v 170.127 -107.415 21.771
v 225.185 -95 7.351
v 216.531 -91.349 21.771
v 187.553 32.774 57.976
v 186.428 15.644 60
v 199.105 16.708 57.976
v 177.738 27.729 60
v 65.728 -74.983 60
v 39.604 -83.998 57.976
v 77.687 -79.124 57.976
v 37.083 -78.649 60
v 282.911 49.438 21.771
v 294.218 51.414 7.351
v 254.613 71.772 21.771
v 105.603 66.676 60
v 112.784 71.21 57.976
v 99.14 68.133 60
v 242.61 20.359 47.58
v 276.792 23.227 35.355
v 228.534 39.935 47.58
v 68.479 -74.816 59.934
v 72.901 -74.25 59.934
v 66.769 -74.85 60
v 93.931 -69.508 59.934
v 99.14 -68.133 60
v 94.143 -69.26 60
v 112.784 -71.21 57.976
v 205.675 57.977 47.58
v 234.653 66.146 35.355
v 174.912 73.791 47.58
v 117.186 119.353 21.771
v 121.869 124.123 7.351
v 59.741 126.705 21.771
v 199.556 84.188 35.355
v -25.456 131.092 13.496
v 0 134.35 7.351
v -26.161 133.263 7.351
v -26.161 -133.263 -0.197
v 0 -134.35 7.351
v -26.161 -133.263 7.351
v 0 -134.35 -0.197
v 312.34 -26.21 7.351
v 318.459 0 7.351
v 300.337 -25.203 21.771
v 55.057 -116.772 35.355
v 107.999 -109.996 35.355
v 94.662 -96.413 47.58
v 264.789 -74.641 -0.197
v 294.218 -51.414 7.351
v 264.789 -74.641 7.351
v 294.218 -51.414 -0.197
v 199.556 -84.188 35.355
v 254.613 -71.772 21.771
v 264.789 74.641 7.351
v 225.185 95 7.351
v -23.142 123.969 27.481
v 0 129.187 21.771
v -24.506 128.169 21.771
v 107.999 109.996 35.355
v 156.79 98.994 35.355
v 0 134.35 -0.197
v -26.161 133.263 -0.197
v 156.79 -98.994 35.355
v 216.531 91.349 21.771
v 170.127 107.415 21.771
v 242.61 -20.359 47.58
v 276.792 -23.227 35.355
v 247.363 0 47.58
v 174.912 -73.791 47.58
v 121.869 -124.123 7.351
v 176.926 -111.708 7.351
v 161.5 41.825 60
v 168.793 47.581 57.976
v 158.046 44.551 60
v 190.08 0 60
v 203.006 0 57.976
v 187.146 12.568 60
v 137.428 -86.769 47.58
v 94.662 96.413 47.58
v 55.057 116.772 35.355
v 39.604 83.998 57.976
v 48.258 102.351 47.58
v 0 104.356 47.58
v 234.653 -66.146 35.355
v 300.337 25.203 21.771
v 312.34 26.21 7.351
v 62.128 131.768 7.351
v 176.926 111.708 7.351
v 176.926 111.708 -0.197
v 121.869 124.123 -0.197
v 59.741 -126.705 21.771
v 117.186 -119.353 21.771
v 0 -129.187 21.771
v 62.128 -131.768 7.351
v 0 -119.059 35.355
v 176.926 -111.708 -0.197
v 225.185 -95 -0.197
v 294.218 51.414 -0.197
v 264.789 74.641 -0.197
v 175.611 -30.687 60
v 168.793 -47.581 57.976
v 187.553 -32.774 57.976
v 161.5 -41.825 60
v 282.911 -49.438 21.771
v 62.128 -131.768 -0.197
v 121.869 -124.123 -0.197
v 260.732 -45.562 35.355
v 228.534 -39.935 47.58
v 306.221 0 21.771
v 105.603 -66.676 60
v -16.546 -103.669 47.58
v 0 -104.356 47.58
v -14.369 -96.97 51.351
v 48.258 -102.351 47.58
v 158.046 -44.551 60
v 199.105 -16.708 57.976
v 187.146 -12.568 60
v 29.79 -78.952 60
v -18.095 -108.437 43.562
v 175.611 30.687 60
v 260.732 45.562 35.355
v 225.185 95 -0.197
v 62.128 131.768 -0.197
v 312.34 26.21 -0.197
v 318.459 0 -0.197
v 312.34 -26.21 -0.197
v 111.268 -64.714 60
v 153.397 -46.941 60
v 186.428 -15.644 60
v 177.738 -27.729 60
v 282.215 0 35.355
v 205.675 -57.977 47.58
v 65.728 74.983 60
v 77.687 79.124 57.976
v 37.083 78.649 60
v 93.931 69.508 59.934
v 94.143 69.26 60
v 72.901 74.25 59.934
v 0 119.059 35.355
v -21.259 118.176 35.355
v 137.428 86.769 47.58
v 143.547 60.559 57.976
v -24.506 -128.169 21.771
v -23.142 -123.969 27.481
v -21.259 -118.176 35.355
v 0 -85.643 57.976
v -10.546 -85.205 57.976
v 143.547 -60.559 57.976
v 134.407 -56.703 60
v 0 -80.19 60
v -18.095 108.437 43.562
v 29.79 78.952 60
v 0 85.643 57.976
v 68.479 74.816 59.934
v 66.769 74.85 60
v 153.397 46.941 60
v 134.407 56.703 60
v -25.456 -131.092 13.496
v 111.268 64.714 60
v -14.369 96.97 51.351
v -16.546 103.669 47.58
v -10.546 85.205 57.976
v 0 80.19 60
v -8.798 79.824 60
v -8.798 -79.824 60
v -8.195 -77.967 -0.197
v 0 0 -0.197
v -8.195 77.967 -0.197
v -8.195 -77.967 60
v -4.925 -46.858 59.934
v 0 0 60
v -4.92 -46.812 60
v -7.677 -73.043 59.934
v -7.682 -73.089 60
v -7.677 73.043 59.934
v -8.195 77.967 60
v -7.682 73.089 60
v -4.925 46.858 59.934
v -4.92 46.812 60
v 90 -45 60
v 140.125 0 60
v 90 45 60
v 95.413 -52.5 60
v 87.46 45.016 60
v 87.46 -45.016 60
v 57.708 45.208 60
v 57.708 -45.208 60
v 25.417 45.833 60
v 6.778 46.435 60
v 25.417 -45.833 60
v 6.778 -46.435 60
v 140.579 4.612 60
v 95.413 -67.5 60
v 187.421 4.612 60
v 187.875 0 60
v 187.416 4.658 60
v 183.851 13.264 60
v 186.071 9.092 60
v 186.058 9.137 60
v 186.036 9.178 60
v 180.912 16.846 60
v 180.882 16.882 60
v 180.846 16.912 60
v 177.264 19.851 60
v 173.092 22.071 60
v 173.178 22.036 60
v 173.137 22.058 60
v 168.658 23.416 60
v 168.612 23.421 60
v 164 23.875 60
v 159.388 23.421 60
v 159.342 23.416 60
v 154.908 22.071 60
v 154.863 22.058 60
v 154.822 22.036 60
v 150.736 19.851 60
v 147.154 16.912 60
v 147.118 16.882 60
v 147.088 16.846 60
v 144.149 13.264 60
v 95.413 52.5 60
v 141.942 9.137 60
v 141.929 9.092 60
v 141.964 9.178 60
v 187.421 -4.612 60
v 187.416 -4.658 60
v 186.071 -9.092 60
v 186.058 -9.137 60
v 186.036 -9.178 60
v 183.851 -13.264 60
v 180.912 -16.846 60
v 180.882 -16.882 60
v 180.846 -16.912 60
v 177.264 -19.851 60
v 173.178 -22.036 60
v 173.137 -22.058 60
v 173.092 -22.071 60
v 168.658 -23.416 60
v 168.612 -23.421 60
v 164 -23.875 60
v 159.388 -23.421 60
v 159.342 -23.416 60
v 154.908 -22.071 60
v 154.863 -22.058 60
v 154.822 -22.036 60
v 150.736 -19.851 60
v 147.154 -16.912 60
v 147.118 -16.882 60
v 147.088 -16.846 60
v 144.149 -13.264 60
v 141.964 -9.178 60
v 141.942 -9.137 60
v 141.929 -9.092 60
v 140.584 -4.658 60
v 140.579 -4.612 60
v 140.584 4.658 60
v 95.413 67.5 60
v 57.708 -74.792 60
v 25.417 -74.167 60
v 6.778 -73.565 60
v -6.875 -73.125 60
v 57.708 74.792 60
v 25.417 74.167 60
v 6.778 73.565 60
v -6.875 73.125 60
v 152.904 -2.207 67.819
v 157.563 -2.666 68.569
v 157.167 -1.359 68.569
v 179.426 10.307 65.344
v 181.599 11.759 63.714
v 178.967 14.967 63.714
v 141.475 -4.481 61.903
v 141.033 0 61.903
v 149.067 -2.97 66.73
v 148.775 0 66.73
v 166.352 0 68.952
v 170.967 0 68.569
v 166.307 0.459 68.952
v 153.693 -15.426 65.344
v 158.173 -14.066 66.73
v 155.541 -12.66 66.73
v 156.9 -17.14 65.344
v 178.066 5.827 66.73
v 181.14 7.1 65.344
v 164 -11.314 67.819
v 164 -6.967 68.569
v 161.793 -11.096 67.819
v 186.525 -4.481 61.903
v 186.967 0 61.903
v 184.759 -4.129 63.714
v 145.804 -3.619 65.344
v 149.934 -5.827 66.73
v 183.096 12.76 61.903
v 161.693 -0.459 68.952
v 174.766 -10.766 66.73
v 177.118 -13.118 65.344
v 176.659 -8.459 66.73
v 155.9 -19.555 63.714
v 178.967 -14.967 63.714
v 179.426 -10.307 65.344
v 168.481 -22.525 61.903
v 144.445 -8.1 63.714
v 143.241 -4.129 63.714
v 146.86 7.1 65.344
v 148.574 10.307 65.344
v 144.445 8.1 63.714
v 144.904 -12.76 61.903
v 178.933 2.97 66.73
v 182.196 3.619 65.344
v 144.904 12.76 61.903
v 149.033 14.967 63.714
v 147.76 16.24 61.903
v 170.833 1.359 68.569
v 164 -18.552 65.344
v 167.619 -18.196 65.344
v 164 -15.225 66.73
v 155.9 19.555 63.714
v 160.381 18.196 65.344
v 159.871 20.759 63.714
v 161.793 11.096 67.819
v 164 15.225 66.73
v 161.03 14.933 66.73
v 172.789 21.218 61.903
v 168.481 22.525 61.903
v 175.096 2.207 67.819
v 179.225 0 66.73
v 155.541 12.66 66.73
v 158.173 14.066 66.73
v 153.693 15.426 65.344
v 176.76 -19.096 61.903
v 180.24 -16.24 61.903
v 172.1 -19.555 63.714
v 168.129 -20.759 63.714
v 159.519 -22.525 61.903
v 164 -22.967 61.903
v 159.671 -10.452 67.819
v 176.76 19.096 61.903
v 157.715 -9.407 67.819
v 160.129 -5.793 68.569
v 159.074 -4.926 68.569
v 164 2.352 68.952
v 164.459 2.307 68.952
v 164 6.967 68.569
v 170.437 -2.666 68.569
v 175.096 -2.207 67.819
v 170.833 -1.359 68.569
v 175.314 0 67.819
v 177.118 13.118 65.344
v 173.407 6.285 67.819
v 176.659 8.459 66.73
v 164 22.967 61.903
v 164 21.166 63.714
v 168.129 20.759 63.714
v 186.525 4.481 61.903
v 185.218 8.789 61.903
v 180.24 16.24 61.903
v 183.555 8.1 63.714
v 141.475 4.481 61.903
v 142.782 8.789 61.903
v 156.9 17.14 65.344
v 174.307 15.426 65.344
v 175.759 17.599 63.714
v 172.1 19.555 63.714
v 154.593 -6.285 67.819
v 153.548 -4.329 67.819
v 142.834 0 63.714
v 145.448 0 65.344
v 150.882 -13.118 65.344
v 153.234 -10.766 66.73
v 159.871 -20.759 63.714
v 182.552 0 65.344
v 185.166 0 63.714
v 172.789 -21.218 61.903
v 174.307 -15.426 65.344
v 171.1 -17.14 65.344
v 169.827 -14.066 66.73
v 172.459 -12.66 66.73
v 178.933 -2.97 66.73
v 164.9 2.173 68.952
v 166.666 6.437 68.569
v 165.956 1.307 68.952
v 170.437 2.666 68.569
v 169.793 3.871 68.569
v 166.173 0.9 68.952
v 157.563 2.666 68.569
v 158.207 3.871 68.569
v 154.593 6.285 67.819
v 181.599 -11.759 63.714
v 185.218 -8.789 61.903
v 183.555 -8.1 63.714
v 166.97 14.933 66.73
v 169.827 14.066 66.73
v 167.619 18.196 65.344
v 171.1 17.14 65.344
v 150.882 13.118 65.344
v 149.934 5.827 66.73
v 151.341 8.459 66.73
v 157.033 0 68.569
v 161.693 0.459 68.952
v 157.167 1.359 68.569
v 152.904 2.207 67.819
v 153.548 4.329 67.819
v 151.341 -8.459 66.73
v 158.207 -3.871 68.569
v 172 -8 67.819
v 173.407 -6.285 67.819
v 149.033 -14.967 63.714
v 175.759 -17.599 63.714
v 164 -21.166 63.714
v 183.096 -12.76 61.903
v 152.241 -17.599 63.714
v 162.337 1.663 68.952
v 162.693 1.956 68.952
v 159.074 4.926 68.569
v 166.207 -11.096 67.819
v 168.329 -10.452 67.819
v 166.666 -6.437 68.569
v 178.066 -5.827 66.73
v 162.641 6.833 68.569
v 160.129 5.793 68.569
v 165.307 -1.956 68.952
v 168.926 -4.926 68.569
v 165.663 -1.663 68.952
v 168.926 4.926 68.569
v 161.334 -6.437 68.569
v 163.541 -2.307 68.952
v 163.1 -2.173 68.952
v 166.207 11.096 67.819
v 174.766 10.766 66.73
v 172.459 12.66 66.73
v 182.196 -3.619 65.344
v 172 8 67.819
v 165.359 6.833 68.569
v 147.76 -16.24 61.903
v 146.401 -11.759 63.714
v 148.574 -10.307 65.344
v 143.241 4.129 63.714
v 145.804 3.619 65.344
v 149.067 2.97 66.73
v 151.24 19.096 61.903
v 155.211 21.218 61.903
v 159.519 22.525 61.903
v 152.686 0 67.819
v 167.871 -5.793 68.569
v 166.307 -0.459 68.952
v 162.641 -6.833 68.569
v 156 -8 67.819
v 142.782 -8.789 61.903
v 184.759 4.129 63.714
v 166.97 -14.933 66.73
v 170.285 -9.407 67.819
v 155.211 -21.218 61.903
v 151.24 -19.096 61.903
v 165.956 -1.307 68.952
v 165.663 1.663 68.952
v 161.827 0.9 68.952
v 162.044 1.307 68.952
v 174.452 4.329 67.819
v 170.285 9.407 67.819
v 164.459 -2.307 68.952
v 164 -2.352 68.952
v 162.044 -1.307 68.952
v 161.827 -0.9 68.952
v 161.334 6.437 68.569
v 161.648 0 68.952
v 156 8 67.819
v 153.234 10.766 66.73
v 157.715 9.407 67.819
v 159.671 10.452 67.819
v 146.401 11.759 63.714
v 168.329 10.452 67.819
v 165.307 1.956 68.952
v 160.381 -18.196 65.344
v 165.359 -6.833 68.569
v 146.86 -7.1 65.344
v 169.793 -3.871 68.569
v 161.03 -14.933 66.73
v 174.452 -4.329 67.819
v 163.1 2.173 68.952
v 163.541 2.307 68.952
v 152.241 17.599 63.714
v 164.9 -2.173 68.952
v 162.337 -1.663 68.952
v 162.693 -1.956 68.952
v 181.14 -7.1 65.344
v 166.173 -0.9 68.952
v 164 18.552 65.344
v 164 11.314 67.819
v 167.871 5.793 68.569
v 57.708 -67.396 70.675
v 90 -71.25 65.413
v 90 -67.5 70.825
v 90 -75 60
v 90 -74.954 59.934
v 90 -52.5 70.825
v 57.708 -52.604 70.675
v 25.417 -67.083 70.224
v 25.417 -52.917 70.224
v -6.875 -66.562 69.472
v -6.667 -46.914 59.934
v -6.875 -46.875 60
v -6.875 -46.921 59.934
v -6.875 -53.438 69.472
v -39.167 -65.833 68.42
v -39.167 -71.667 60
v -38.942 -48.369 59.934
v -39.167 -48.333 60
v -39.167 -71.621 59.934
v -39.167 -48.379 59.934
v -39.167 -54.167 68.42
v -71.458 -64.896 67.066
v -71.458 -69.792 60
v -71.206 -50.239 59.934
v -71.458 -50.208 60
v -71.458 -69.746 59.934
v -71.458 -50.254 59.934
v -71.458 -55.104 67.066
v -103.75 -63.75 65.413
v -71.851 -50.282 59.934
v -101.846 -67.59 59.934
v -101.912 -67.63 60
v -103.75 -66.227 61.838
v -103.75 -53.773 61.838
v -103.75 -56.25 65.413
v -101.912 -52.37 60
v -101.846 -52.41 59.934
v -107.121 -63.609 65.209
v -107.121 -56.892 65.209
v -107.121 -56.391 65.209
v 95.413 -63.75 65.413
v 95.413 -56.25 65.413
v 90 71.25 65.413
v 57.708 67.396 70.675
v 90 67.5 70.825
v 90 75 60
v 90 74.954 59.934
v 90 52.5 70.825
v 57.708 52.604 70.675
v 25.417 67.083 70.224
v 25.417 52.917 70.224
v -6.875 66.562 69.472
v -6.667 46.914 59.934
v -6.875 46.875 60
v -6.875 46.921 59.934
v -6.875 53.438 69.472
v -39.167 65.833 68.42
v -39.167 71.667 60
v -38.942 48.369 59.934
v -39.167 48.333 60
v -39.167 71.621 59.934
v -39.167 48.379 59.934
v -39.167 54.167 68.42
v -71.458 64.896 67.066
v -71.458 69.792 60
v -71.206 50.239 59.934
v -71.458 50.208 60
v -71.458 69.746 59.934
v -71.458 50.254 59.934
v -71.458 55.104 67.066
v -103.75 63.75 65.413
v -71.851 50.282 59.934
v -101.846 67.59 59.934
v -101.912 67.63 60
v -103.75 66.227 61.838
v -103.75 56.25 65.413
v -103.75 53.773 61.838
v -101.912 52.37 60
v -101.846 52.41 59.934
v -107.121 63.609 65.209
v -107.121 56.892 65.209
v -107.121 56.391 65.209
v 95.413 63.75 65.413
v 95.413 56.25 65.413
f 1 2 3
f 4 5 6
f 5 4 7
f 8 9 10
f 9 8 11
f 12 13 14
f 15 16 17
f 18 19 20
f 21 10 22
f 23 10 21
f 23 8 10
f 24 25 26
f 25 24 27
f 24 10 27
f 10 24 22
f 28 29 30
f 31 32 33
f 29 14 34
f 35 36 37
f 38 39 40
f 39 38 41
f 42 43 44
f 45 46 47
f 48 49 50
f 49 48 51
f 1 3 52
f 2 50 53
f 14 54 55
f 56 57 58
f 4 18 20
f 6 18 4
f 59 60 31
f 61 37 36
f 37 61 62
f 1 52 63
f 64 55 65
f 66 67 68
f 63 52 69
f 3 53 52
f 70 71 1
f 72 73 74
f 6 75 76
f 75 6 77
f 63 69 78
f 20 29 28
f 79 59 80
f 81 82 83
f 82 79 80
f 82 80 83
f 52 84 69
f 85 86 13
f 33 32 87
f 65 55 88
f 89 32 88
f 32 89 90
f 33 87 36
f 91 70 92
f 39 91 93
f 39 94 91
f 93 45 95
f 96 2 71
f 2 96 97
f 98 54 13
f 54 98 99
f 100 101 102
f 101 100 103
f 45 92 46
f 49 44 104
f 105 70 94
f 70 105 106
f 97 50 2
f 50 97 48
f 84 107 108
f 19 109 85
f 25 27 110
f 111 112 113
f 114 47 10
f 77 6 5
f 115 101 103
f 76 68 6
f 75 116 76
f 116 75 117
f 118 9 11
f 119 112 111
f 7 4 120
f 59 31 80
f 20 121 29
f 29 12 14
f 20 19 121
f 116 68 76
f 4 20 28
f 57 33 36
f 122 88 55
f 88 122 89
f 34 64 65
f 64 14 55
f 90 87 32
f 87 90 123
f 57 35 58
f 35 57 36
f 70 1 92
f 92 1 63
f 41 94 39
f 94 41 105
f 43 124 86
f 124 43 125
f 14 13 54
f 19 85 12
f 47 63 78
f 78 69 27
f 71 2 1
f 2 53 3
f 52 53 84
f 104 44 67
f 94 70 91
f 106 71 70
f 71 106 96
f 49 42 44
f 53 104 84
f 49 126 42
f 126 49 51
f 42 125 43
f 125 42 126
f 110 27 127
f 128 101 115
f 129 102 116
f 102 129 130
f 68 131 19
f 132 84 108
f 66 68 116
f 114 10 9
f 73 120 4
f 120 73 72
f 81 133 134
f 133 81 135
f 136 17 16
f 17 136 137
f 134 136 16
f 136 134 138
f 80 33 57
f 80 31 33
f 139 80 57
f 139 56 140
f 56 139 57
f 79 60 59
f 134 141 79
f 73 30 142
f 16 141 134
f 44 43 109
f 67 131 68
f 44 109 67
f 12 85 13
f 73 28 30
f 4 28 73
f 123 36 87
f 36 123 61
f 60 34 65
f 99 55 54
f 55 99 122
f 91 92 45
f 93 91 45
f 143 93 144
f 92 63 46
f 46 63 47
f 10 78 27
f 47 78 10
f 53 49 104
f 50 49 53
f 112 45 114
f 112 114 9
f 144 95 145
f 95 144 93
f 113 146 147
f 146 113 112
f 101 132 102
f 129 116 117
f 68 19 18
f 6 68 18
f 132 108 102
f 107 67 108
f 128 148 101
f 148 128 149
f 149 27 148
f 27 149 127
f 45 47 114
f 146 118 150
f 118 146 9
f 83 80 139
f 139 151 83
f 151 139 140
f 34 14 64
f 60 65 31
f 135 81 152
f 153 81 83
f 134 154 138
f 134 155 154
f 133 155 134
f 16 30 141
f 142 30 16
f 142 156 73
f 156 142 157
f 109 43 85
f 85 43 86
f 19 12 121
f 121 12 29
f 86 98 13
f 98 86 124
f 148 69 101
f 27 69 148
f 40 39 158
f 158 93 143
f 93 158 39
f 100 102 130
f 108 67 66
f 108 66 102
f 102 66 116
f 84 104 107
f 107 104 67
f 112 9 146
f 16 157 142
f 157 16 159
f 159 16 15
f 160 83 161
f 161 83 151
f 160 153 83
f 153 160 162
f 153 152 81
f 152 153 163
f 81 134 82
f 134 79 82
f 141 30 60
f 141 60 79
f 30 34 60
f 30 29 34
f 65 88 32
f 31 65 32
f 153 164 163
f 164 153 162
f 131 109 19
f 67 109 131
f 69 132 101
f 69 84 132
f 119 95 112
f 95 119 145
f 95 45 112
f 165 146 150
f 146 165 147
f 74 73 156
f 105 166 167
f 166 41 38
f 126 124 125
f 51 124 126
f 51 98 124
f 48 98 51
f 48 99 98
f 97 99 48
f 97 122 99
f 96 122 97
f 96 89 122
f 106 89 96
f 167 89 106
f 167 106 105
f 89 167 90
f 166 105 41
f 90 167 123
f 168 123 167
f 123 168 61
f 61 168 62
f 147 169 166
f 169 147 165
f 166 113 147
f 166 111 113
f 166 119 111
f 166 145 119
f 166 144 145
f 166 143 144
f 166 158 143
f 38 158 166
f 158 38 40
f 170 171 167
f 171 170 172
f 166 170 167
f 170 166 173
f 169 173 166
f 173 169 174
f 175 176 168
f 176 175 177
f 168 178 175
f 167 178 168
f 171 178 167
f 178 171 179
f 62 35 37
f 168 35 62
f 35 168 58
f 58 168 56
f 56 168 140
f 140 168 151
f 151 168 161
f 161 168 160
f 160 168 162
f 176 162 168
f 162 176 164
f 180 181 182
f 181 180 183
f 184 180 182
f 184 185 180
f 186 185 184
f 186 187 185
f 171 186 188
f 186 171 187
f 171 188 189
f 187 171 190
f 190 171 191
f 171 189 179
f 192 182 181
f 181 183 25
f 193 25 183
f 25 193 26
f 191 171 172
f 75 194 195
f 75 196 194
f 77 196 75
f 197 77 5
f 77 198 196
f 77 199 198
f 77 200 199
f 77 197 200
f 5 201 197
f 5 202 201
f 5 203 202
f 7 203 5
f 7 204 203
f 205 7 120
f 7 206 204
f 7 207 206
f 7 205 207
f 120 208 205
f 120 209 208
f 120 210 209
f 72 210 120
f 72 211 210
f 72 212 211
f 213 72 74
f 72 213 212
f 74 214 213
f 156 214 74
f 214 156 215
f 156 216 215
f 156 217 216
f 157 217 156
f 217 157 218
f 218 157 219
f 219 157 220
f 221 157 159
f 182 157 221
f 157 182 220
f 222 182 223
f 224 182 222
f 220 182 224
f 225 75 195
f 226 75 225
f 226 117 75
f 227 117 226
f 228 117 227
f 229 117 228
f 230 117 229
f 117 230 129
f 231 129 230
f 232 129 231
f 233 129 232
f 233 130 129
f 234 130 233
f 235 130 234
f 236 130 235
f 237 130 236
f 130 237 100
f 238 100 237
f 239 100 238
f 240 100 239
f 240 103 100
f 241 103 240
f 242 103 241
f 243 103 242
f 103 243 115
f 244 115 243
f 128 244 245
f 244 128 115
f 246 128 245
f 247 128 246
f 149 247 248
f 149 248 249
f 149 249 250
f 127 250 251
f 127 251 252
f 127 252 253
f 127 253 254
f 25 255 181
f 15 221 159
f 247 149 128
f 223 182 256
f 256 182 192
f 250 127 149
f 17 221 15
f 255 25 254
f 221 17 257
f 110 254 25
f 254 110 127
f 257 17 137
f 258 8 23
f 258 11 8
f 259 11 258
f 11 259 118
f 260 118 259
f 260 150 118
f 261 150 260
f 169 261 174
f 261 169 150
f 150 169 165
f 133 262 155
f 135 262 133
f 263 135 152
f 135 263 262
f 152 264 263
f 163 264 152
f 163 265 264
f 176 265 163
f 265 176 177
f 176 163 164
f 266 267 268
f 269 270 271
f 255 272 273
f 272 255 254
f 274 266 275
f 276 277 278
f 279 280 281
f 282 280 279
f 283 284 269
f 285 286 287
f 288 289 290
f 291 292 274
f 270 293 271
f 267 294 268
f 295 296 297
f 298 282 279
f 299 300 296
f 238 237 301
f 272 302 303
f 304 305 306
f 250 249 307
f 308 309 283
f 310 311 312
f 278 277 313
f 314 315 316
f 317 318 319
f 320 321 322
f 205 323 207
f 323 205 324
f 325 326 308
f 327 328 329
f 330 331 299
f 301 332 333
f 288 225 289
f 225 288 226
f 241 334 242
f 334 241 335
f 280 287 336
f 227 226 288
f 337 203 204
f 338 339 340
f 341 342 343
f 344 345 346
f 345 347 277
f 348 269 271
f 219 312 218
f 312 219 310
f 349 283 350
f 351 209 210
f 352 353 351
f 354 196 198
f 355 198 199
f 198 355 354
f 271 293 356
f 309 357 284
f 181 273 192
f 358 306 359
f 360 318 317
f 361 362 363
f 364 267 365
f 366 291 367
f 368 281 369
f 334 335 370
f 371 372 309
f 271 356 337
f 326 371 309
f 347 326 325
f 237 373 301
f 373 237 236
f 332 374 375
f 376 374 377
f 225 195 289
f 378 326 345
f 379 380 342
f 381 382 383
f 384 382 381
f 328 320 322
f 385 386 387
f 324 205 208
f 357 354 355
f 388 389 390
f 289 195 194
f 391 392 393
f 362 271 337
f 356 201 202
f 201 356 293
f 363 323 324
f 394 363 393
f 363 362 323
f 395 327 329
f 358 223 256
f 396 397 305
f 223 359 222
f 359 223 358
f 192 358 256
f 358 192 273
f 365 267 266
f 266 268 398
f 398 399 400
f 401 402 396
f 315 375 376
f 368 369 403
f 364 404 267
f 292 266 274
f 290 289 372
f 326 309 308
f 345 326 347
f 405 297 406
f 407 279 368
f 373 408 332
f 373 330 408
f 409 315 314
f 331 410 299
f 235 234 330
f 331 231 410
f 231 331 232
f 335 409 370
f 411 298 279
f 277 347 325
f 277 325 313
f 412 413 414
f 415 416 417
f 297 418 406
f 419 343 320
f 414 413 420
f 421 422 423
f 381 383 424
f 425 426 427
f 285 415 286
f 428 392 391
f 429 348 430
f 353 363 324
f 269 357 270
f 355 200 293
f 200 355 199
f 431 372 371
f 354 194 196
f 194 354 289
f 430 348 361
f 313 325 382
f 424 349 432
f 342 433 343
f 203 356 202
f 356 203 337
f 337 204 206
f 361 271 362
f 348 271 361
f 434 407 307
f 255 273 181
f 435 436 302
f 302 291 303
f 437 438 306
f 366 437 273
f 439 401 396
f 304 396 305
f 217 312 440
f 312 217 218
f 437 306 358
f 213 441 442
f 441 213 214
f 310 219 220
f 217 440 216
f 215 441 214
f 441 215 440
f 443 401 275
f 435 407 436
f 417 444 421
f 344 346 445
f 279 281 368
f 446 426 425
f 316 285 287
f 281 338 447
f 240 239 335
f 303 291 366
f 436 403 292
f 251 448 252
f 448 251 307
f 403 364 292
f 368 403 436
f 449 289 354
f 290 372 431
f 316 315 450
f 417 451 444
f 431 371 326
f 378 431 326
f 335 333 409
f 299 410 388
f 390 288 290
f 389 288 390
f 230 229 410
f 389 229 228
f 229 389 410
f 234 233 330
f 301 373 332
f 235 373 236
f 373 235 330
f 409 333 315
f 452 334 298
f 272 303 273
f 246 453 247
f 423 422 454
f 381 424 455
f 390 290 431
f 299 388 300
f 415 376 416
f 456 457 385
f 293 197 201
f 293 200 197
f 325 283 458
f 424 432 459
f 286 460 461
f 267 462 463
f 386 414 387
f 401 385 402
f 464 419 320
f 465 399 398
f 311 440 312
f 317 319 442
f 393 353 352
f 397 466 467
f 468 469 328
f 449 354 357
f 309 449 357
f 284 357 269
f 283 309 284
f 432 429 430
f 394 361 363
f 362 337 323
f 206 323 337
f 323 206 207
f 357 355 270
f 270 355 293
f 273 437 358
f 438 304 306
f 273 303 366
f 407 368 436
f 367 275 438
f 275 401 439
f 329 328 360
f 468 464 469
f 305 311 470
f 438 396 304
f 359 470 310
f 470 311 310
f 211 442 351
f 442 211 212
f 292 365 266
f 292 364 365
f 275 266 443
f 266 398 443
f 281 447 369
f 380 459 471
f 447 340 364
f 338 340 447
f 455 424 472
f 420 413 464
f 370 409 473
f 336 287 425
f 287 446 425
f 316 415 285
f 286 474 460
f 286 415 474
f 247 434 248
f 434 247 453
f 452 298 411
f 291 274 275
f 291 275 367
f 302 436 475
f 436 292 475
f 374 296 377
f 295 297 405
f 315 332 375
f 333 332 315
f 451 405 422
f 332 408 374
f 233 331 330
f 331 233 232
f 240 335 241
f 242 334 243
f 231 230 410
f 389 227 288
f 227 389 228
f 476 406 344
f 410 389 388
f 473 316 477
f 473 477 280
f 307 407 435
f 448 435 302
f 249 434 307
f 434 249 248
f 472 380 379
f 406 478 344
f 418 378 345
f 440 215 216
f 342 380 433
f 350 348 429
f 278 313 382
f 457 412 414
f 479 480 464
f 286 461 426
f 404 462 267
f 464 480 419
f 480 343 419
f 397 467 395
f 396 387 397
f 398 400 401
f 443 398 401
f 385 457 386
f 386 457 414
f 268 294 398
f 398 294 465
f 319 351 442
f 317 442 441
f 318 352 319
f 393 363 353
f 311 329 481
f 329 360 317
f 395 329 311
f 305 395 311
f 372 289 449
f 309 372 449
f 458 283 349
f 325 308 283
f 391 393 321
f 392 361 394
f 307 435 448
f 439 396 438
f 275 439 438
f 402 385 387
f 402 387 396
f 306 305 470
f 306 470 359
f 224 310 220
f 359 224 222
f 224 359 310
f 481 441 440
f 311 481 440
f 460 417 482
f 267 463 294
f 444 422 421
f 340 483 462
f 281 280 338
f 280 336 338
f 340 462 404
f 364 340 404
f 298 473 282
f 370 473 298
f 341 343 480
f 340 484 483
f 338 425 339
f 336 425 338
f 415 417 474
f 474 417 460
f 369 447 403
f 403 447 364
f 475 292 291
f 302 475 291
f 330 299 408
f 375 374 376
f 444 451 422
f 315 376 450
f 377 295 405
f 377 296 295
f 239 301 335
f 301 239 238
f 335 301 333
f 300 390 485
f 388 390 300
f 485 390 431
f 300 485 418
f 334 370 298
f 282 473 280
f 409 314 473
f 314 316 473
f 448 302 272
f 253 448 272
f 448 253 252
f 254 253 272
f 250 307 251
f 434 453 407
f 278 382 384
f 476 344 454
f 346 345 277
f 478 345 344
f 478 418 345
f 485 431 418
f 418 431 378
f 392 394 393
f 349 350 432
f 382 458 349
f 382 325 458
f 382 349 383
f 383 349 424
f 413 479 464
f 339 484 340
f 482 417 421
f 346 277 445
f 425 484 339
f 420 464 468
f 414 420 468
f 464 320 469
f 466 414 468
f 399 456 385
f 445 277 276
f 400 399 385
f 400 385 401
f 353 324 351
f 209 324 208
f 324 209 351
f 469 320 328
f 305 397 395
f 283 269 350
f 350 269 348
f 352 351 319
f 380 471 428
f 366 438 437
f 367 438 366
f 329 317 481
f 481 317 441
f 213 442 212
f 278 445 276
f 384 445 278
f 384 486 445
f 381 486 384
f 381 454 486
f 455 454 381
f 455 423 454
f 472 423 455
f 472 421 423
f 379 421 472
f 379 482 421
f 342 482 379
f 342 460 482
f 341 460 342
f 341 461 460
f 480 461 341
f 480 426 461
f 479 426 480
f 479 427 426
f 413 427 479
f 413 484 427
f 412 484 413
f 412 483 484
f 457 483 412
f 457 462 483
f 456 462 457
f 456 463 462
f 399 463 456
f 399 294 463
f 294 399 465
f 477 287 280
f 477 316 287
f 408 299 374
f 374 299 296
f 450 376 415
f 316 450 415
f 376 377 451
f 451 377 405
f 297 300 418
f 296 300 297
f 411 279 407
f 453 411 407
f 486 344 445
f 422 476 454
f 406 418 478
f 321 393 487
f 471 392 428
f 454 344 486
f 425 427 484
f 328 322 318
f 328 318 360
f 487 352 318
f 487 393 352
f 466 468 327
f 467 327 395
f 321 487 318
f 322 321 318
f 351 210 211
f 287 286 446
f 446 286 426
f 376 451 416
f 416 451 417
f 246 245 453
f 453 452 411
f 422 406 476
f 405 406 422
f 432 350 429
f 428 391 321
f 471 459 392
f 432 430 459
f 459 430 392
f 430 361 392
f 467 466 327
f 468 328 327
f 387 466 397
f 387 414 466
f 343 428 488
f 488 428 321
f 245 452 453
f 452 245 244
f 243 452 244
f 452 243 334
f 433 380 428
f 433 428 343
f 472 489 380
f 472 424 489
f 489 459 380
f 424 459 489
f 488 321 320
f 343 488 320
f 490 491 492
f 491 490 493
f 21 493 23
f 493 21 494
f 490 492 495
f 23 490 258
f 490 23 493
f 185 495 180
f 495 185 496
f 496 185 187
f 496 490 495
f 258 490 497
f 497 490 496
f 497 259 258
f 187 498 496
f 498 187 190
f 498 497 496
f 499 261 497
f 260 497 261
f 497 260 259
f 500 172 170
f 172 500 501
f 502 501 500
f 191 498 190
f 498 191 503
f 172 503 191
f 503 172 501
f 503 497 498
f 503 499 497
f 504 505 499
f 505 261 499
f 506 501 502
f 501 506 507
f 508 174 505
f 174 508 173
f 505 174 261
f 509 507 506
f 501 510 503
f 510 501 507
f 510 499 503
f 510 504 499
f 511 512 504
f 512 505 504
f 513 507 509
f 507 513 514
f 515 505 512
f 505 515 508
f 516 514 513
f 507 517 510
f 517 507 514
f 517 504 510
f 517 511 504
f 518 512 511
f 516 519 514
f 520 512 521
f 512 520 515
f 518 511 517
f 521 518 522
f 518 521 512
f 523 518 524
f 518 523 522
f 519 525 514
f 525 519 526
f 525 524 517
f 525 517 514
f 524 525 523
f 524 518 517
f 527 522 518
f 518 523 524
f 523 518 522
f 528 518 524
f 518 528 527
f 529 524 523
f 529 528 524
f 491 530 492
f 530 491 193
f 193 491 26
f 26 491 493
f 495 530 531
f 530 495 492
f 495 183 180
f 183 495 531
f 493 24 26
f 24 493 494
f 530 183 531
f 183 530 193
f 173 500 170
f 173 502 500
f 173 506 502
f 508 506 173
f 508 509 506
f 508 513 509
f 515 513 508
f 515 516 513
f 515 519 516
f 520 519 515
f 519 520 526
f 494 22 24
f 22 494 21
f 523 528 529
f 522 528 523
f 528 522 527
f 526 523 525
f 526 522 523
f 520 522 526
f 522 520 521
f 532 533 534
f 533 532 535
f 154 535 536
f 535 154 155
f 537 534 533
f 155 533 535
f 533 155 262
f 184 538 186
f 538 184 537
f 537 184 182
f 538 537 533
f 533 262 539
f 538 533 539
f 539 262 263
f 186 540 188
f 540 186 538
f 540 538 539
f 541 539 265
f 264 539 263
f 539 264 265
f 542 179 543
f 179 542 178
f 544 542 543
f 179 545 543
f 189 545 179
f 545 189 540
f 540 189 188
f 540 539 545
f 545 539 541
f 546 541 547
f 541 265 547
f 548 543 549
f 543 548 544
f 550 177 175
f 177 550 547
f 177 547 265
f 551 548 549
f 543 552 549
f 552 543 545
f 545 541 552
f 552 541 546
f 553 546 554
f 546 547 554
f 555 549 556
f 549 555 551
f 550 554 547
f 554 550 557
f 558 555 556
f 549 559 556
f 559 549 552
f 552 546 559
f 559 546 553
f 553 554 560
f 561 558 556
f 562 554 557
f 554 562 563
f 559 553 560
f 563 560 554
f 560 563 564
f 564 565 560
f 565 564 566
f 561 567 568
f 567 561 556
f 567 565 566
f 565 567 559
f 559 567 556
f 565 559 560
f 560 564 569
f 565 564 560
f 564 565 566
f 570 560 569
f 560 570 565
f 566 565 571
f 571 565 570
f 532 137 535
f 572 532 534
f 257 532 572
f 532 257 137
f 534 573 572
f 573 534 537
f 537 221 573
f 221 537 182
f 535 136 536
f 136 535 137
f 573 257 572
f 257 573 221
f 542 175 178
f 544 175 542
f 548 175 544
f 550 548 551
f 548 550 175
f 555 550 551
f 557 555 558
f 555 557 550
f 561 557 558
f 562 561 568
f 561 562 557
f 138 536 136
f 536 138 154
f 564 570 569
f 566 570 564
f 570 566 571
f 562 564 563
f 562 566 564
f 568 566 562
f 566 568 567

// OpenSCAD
// file: ../lib/util.scad
fn1 = 32;
fn2 = 16;

module util_half_sphere(radius, fn=fn1) {
    difference() {
        sphere(radius, $fn=fn);
        translate([0,0,-(radius+radius/19)])
            cube(2*radius+radius/10, center=true);
    }
}

function gcd(a,b) = a == b ? a : a > b ? gcd(a-b, b) : gcd(a, b-a);

module util_saucer(length, width, height, fn=fn1) {
    rad = gcd(length,gcd(width,height));
    //rad = 10;
    scale([length/(2*rad), width/(2*rad), height/rad])
        util_half_sphere(rad, fn);
}

module util_half_cylinder(length, radius, inner_fn=fn2, outer_fn=fn1) {
    maxval = max(length, 2*radius);
    intersection() {
        difference() {
            rotate([0,90,0])
                translate([0,0,-(length/2 + length/20)])
                    cylinder(length+length/10, radius, radius, $fn=inner_fn);
            
            translate([0,0,(maxval/2 + maxval/19)])
                cube(maxval+maxval/10, center=true);
        }
        
        translate([0,0,-(radius+radius/20)])
            cylinder(radius + radius/10, length/2, length/2, $fn=outer_fn);
    }
}

module util_body(length, width, height, upper_height, fn=fn1) {
    rad = gcd(length, gcd(width, upper_height));
    
    scale(.995) scale([length/(2*rad), width/(2*rad), 1])
        util_half_cylinder(2*rad, height, outer_fn=fn);
}

module util_graded_cylinder(height, radius_start, radius_end, grades=1, fn=fn1) {
    height_grade = height / grades;
    radius_grade = (radius_start - radius_end) / (grades * grades);
    for (i = [0 : 1 : grades]) {
        translate([0,0,i*height_grade])
            cylinder(height_grade, 
                     radius_start - i*radius_grade * i,
                     radius_start - (i+1) * radius_grade * (i+1),
                     $fn = fn);
    }
}

module util_nacelle(length, width, height, curved=false, up=true, front_bulge=false) {
    rad = min(width, height/2);
    grads = curved ? 6 : 1;
    scale_factor = front_bulge ? 1.1 : 1;
    direction = up ? -1 : 1;
    difference() {
        scale([1, width/ (2*rad), height/rad])
            difference() {
                union() {
                    rotate([0,-90,0])
                        rotate(30)
                            util_graded_cylinder(length-rad, rad, rad/2, grads, 6);
                    scale(scale_factor) 
                        rotate([0,90,0]) rotate(90) sphere(rad, $fn=6);
                }
                
                translate([-length/2, 0, direction * (height/2 + height/19)])
                    cube([length+length, width+width, height+height/10], center=true);
            }
        
        translate([-length-(curved?length/3:0), 0, -length/3])
            rotate([0,-45,0])
                cube(length, center=true);
    }
}

module util_mirrored(v) {
    children();
    mirror(v) children();
}

module util_ring(outer, inner, height) {
    difference() {
        translate([0,0,-height/2])
            cylinder(height, outer, outer);
        translate([0,0,-(height/2 + height/19)])
            cylinder(height+height/10, inner, inner);
    }
}

module util_star(radius, thick, num, half=false) {
    angle = 360/num;
    offset = half? angle/2 : 0;
    for (i = [0: 1: num]) {
        rotate(i* angle + offset)
            translate([radius/2,0,0])
                cube([radius, thick, thick], center=true);
    }
}

module util_ring_star(radius, thick, num, inner, half=false) {
    outer=inner+thick;
    avg = (inner + outer)/2;
    union() {
        difference() {
            util_star(radius, thick, num, half);
            cylinder(2*thick, outer, outer, $fn=num, center=true);
        }
        util_ring(outer, inner, thick);
    }
}

module util_hangar_disk(height, lower, upper, num, fn=fn1) {
    difference() {
            cylinder(height, lower, upper, $fn=fn, center=true);
        difference() {
            scale([1,1,22])
                util_star(1.1*upper, height/20, num, half=true);
            scale(.95)
                cylinder(height, lower, upper, $fn=fn, center=true);
        }
    }
}

module util_hangar_form(length, width, height, num, inner=0) {
    l = 0.6* max(length, width);
    h = 2.5* height;
    thick = min(height/20,1);
    inner = inner == 0 ? l/3 : inner;
    difference() {
        children();
        scale([1,1,h/thick]) 
            util_ring_star(l, thick, num, inner, half=true);
    }
    scale(.95) children();
}

module util_nacelle_bar(span, height, width, thickness) {
    rad = (span*span/(8*height) + height/2);
    outer = rad + thickness/2;
    inner = rad - thickness/2;
    difference(){
        translate([0,0,outer])
            rotate([0,90,0])
                util_ring(outer, inner, width);
    
        translate([0,0,1.1*outer+height])
            cube(2.2*outer, center=true);
    }
}

module util_q_sphere(rad, quadrant, faces) {
    x_sign = quadrant == 1 ? 1 :
             quadrant == 2 ? -1 :
             quadrant == 3 ? -1 :
             quadrant == 4 ? 1 : 0;
    z_sign = quadrant == 1 ? 1 :
             quadrant == 2 ? 1 :
             quadrant == 3 ? -1 :
             quadrant == 4 ? -1 : 0;
    
    difference() {
        sphere(rad, $fn=faces);

        translate([x_sign*(-1.1*rad - .01),0,0])
        cube(2.2*rad, center=true);

        translate([0,0,z_sign*(-1.1*rad - .01)])
        cube(2.2*rad, center=true);
    }
}

module util_ovoid(front_rad, back_rad, width, upper_rad, lower_rad, faces=32) {
    half_width = width/2;
    largest=max(front_rad, back_rad, half_width, upper_rad, lower_rad);
    smallest=min(front_rad, back_rad, half_width, upper_rad, lower_rad);
    
    union() {
        scale([front_rad/smallest, half_width/smallest, upper_rad/smallest])
        util_q_sphere(smallest, 1, faces);
        
        scale([front_rad/smallest, half_width/smallest, lower_rad/smallest])
        util_q_sphere(smallest, 4, faces);
        
        scale([back_rad/smallest, half_width/smallest, lower_rad/smallest])
        util_q_sphere(smallest, 3, faces);
        
        scale([back_rad/smallest, half_width/smallest, upper_rad/smallest])
        util_q_sphere(smallest, 2, faces);
    }
}
// main file
use <../lib/util.scad>;

module mvm_back_hangar() {
    difference() {
        util_saucer(640,270,75);

        translate([750/2,0,0])
            cylinder(500,750/2,750/2,center=true);

        translate([0,0,500+60])
            cube(1000, center=true);

//        translate([50,0,40])
//            cube([100,120,100],center=true);
    }

    translate([-164,0,59])
    util_saucer(48,48,10);
    
    util_mirrored([0,1,0])
        translate([-90,60,60])
            mirror([1,0,0])
                    util_nacelle(200,30,12.5,curved=true);


}

rotate(180) mvm_back_hangar();
